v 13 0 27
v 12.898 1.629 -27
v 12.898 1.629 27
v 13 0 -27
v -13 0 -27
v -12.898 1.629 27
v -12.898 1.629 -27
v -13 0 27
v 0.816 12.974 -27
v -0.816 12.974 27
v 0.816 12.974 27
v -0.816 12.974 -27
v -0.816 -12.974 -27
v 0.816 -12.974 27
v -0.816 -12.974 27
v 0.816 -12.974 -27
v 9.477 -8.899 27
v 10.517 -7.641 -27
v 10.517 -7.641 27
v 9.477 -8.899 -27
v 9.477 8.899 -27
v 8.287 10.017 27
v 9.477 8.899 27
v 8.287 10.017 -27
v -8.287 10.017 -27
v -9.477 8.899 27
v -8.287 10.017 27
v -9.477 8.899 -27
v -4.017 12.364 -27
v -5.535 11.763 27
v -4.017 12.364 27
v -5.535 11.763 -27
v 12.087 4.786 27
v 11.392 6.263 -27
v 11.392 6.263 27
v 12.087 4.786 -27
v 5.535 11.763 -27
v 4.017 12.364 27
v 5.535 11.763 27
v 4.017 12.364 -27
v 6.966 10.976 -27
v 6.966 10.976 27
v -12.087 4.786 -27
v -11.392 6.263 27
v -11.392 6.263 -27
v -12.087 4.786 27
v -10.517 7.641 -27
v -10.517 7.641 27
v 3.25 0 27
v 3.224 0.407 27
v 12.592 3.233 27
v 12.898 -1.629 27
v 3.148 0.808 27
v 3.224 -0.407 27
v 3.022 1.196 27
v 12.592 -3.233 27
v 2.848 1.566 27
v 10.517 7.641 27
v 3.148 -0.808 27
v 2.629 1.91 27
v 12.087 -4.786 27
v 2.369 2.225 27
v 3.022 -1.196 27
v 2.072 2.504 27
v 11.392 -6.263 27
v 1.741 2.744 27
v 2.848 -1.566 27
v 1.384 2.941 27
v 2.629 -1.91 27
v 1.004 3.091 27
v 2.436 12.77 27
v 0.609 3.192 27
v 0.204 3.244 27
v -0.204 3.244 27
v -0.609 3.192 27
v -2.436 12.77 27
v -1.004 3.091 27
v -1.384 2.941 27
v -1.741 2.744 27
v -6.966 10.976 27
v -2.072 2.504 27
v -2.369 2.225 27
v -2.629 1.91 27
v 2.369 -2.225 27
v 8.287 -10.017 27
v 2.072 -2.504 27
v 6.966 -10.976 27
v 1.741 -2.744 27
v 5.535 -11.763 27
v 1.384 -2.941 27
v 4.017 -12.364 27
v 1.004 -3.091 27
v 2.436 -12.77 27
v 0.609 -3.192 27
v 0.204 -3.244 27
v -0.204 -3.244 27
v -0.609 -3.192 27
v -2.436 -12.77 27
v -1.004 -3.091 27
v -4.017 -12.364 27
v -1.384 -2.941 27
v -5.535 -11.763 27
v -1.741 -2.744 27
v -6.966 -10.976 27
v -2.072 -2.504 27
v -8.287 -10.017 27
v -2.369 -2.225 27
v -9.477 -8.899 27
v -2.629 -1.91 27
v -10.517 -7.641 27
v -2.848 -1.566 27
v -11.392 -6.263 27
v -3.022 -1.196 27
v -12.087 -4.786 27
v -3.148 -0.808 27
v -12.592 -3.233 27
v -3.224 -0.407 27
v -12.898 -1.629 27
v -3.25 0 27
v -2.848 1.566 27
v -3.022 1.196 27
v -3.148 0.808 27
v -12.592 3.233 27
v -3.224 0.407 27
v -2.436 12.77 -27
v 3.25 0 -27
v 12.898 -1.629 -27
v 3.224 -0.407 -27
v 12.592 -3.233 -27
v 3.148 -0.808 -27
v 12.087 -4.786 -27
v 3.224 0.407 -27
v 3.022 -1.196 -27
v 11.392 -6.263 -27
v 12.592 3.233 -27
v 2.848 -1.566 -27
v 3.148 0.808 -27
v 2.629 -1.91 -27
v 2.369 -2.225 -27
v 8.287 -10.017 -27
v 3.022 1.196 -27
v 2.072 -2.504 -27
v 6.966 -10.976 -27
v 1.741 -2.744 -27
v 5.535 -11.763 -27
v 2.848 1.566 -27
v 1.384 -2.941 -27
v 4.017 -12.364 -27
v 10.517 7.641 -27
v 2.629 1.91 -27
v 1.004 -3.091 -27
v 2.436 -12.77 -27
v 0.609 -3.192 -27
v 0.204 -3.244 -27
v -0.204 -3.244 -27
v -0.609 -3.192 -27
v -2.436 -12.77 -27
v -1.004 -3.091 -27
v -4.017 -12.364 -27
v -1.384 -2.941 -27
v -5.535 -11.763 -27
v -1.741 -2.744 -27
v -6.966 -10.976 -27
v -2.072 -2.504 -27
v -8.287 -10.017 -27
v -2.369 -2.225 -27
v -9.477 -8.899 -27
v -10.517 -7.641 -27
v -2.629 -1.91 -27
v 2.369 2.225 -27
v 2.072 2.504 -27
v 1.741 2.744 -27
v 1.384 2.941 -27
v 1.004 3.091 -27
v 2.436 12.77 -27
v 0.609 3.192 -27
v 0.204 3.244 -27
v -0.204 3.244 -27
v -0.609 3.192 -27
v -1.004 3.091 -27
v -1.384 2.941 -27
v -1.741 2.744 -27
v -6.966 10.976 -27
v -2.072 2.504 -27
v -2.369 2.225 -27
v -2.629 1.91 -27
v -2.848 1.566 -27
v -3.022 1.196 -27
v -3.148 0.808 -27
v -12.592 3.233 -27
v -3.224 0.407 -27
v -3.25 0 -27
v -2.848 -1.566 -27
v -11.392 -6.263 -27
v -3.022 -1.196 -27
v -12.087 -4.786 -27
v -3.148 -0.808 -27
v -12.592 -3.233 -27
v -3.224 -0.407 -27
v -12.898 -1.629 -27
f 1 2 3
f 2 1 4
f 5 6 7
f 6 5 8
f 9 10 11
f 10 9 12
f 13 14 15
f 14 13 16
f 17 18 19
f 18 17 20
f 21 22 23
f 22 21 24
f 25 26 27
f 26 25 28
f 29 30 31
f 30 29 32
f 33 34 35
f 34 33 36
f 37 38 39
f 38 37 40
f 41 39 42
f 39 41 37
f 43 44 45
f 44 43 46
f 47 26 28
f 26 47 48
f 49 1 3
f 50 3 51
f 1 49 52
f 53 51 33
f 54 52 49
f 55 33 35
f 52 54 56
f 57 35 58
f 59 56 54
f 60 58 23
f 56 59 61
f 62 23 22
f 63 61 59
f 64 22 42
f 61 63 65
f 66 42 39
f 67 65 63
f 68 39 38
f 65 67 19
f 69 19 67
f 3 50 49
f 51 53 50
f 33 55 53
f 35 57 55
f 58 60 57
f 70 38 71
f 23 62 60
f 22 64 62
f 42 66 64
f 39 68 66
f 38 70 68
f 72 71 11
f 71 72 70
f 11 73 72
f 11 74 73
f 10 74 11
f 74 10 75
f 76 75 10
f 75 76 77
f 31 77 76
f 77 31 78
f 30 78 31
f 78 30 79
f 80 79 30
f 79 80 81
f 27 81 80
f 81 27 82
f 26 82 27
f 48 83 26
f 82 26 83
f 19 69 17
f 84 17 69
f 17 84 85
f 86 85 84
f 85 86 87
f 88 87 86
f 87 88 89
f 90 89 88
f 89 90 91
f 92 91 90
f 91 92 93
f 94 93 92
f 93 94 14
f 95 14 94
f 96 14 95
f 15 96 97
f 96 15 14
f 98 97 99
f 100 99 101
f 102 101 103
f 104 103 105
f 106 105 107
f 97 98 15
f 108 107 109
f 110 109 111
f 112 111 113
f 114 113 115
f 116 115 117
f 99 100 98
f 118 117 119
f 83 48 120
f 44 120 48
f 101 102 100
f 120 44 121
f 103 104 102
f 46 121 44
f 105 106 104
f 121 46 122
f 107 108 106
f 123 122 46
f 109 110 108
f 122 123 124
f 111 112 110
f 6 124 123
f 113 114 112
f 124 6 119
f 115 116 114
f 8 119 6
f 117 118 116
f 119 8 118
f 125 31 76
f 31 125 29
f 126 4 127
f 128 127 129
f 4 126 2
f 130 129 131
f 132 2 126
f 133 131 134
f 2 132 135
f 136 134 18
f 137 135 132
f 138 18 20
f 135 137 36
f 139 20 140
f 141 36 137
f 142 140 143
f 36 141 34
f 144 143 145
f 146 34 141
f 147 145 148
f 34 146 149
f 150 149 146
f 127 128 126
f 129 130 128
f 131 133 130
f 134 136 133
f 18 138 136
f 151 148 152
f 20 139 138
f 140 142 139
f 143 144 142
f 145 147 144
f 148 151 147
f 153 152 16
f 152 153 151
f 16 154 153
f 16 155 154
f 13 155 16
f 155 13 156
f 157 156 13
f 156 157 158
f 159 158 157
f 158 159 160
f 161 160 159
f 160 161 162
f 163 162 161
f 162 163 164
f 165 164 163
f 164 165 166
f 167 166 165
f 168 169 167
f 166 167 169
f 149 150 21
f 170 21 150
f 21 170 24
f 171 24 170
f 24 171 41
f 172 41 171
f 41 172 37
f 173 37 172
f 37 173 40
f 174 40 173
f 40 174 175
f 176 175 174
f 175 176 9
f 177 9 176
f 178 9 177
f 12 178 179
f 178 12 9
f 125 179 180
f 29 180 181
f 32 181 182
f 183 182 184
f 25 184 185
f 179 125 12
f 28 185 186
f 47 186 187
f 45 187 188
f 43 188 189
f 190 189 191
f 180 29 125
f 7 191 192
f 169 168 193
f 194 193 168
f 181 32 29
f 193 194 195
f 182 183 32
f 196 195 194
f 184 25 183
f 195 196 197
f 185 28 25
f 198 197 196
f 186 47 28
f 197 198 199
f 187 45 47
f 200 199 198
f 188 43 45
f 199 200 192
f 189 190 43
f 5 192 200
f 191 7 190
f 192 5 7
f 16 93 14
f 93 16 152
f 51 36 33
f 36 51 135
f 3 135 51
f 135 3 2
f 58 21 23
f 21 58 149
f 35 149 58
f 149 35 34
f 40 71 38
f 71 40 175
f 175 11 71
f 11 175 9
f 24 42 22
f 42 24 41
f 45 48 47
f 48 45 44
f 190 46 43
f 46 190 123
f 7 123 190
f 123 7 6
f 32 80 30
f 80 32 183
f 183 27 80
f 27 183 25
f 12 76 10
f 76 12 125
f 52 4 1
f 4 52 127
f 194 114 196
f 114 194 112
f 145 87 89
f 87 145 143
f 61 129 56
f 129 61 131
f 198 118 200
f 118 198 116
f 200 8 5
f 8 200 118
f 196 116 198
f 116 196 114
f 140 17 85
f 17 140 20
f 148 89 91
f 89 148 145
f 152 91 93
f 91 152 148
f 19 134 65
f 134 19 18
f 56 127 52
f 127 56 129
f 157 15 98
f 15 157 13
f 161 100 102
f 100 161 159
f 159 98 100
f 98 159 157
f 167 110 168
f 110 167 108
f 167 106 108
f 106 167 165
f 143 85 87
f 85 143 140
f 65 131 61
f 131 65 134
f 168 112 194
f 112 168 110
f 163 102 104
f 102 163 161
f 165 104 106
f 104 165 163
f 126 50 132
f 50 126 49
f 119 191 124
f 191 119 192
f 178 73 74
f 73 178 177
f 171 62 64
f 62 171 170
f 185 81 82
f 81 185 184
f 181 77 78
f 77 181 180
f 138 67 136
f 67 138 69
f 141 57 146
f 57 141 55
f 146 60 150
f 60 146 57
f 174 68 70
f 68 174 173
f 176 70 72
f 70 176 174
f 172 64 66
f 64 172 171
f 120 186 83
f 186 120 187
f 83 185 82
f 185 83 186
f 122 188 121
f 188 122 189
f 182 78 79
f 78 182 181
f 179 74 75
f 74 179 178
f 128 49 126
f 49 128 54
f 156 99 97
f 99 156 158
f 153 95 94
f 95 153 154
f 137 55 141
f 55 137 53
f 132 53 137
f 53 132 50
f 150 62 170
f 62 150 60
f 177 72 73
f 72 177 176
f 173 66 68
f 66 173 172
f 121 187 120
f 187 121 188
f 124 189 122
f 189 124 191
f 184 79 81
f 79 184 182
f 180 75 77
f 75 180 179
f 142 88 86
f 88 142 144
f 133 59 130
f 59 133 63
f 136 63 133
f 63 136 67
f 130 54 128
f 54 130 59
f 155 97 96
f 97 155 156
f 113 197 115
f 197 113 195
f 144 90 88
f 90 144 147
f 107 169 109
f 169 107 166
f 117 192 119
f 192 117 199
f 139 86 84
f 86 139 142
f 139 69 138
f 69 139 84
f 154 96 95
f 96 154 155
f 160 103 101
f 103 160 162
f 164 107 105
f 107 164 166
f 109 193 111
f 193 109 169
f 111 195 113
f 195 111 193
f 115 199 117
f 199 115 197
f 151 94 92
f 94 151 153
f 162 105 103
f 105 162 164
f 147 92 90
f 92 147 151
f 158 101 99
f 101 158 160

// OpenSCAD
$fn = 50;


difference() {
	union() {
		translate(v = [0, 0, -27.0000000000]) {
			cylinder(h = 54, r = 13.0000000000);
		}
	}
	union() {
		translate(v = [0, 0, -100.0000000000]) {
			cylinder(h = 200, r = 3.2500000000);
		}
	}
}
